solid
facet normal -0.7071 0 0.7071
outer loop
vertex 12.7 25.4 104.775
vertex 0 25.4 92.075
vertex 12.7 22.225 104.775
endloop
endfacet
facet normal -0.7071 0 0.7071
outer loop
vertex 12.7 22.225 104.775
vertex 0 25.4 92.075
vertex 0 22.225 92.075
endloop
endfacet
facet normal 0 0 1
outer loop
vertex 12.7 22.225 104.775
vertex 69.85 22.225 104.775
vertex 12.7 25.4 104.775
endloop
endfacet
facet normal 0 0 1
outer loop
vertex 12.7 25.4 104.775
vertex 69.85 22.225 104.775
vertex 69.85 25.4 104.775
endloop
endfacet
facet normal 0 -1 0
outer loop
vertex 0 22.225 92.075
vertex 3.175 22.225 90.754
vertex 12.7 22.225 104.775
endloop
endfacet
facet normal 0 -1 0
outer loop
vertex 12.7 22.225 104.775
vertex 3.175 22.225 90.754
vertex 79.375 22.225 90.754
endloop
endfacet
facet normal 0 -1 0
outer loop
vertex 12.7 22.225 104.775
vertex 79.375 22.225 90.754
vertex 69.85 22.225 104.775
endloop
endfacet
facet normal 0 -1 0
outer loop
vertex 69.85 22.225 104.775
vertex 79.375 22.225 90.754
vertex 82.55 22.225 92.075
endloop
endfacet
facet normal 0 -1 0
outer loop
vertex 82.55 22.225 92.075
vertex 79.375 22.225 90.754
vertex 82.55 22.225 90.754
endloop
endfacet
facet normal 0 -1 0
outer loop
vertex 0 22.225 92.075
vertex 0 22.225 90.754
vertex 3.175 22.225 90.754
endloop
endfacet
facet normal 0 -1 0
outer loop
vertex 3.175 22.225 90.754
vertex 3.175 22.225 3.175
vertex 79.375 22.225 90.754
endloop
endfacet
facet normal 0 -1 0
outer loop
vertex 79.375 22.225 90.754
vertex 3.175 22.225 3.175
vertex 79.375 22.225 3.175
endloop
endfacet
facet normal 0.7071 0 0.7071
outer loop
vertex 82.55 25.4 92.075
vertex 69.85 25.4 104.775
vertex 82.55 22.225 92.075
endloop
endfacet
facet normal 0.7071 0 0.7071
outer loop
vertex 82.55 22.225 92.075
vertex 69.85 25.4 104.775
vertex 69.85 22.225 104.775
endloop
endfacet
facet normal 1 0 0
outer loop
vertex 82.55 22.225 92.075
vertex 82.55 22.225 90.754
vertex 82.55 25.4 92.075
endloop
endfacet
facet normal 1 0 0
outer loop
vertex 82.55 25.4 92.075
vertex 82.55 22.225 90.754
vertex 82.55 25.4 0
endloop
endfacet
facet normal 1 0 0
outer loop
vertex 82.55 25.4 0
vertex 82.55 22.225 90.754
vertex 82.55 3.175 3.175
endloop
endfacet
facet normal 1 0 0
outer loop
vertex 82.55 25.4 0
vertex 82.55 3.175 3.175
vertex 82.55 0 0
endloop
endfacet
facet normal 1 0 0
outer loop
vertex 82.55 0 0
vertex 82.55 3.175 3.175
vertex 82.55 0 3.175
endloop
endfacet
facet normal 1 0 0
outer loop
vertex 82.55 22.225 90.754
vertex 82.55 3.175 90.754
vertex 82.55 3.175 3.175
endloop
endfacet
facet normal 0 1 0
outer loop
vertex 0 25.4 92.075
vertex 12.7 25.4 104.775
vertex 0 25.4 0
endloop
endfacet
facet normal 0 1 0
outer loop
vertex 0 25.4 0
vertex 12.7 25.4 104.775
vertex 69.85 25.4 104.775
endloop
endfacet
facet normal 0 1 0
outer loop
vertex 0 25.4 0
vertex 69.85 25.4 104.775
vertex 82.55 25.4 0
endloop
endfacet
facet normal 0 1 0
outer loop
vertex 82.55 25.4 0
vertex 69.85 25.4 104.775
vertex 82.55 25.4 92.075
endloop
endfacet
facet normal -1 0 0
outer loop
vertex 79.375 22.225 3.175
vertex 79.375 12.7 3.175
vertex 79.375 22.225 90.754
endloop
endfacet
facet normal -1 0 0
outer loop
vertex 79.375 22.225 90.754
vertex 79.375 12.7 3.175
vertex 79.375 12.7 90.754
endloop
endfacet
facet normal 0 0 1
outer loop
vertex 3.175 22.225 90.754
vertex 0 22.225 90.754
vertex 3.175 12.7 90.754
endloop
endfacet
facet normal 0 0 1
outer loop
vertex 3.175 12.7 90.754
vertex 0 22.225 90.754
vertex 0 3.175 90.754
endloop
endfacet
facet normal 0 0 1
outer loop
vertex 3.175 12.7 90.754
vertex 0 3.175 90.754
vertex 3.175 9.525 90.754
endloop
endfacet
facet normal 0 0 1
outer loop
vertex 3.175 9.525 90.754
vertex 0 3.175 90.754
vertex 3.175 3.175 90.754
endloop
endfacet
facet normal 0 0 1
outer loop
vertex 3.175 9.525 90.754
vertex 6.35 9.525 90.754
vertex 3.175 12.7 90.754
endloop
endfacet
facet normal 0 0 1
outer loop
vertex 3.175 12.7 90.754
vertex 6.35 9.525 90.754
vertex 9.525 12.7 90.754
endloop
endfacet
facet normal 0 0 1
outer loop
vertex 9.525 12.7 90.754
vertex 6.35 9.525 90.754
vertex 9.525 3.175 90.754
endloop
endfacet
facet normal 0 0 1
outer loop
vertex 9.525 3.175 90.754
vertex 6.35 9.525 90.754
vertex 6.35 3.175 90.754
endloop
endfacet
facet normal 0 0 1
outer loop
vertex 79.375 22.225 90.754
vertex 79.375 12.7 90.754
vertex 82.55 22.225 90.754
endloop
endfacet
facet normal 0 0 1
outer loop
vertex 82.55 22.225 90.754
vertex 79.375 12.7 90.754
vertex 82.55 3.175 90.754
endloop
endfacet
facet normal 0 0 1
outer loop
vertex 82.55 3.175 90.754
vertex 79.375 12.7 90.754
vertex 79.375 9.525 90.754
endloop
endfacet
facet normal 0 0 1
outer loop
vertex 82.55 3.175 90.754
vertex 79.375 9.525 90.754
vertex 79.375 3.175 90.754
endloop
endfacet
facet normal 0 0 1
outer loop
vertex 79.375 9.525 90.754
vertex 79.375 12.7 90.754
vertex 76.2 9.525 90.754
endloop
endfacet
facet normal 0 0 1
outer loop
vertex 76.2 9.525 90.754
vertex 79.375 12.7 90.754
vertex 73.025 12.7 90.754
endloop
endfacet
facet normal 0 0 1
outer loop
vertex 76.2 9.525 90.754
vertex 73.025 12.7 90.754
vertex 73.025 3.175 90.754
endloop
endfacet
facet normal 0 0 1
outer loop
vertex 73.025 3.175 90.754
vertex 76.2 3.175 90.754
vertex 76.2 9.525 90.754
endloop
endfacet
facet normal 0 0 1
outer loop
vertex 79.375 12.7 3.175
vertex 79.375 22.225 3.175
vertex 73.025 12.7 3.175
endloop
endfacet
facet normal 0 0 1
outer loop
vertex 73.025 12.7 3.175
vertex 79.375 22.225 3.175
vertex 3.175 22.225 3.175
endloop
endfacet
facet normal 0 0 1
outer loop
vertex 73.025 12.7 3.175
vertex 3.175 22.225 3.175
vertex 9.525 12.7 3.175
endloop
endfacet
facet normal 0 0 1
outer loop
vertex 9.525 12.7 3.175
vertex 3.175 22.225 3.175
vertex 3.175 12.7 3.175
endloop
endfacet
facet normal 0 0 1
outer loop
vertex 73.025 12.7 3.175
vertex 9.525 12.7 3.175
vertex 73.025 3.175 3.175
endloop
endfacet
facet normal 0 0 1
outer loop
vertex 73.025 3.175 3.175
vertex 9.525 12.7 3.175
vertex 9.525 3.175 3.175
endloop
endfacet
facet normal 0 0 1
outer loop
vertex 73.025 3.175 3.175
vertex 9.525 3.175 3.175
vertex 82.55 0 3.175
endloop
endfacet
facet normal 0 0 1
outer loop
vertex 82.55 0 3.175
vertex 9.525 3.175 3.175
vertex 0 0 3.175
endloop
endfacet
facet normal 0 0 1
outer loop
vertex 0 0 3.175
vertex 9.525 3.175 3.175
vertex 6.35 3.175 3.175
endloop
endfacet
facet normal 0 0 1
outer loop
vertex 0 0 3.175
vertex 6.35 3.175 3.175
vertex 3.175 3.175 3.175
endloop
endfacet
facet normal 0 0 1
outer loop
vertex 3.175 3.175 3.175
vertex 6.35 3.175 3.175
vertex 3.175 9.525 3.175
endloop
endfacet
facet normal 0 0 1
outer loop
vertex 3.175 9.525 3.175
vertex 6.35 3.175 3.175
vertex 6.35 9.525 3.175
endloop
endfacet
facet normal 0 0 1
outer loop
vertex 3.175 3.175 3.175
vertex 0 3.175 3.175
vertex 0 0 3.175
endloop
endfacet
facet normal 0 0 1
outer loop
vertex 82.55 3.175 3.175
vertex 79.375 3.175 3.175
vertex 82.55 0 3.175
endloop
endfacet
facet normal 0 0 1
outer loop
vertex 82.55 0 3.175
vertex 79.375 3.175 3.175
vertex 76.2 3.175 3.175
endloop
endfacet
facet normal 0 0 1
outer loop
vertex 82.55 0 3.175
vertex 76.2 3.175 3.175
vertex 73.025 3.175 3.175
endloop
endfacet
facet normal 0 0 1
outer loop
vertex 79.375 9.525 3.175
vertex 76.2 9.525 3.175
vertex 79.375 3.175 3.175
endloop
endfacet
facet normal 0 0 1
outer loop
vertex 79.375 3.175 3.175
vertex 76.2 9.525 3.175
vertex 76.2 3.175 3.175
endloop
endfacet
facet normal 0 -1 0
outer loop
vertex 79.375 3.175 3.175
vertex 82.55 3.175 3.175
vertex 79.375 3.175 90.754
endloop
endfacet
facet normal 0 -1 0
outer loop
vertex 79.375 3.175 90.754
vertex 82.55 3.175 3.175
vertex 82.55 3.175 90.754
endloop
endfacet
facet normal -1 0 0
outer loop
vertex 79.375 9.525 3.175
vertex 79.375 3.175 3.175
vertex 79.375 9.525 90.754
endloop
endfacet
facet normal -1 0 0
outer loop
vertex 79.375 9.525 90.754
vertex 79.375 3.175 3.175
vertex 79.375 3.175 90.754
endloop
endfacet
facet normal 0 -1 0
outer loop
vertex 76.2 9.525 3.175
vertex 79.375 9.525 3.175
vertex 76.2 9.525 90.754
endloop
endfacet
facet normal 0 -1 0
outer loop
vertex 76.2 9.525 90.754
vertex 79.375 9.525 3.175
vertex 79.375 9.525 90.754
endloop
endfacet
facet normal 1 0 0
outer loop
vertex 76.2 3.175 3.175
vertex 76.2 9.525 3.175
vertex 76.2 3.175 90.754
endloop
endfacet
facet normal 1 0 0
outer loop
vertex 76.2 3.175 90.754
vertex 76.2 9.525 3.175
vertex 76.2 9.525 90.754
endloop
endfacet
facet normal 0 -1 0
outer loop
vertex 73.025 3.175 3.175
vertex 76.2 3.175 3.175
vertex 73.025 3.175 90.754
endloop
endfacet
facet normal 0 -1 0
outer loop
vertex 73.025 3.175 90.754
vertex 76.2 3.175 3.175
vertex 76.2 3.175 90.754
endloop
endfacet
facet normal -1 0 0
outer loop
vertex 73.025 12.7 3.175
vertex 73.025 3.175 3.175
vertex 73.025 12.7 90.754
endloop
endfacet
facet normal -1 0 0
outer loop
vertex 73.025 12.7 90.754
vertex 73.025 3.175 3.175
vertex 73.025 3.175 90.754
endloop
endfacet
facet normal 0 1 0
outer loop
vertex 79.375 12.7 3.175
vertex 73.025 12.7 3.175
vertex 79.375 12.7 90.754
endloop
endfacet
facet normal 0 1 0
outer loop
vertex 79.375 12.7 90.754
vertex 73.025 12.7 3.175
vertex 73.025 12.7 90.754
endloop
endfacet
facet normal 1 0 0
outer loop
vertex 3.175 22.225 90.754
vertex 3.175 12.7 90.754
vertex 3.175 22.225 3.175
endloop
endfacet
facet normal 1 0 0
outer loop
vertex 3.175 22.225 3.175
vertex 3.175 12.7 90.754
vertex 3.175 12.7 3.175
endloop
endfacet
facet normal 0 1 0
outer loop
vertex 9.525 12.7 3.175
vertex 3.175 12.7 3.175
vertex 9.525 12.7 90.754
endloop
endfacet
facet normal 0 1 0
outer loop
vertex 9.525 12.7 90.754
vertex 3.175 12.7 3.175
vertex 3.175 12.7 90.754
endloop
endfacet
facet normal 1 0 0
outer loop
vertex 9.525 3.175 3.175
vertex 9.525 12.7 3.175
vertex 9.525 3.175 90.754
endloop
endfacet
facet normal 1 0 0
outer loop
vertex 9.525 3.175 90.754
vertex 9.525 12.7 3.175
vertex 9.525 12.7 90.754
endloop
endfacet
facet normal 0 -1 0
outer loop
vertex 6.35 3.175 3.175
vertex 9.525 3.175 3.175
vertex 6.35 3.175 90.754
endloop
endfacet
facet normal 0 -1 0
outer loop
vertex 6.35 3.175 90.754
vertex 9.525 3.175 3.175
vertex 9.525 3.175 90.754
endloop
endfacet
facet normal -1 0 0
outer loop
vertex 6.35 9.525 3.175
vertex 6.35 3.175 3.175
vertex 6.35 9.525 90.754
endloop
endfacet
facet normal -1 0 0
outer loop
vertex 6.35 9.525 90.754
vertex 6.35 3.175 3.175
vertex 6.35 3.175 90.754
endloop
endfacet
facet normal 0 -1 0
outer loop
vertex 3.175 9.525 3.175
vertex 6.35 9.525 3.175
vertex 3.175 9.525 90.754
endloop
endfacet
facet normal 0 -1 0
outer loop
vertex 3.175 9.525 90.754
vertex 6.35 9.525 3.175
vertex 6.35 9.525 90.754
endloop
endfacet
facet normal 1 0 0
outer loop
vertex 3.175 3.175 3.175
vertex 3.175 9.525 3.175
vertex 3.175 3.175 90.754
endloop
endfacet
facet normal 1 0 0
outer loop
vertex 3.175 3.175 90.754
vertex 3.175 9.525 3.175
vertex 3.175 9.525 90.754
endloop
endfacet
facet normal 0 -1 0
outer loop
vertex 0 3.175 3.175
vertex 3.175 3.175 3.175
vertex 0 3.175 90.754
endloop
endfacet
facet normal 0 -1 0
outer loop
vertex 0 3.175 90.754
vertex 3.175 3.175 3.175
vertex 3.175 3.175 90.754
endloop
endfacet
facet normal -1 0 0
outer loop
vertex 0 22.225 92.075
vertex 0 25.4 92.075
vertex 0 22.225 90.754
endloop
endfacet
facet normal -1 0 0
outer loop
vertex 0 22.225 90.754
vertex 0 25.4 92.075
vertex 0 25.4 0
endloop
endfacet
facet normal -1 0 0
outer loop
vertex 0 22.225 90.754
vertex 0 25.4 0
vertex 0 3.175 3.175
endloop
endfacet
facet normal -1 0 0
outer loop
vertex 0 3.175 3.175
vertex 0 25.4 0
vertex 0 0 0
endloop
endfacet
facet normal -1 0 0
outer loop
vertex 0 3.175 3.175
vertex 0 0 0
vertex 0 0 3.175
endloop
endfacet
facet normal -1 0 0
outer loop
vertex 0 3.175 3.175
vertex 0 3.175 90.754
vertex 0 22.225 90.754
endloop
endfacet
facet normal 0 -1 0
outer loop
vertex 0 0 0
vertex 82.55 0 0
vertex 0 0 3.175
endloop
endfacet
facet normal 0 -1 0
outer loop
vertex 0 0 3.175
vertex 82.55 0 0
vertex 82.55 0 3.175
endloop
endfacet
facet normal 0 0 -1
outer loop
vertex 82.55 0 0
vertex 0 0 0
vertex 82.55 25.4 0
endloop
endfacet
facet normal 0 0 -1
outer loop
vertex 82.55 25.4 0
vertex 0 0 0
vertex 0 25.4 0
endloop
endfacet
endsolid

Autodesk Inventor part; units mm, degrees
ref_plane "YZ Plane" through (0, 0, 0) normal (1, 0, 0) x (0, 1, 0)
ref_plane "XZ Plane" through (0, 0, 0) normal (0, 1, 0) x (-1, 0, 0)
ref_plane "XY Plane" through (0, 0, 0) normal (0, 0, 1) x (1, 0, 0)
sketch "Sketch5" plane through (0, 0, 0) normal (0, 0, 1) x (1, 0, 0)
  line L0 (0, 0) -> (82.55, 0)
  line L1 (82.55, 0) -> (82.55, 38.1)
  line L2 (82.55, 38.1) -> (0, 38.1)
  line L3 (0, 38.1) -> (0, 0)
  dimension "d41" = 82.55
  dimension "d42" = 38.1
extrude "Extrusion5" add sketch "Sketch5" along normal blind 3.175
sketch "Sketch6" plane through (0, 0, 3.175) normal (0, 0, 1) x (1, 0, 0)
  line L0 (0, 0) -> (82.55, 0) projected
  line L1 (82.55, 0) -> (82.55, 38.1) projected
  line L2 (82.55, 38.1) -> (0, 38.1) projected
  line L3 (0, 38.1) -> (0, 0) projected
  line L4 (0, 38.1) -> (0, 0) projected
  line L5 (79.375, 3.175) -> (79.375, 9.525)
  line L6 (79.375, 9.525) -> (76.2, 9.525)
  line L7 (76.2, 9.525) -> (76.2, 3.175)
  line L8 (3.175, 3.175) -> (3.175, 9.525)
  line L9 (3.175, 9.525) -> (6.35, 9.525)
  line L10 (6.35, 9.525) -> (6.35, 3.175)
  line L11 (6.35, 3.175) -> (9.525, 3.175)
  line L12 (9.525, 3.175) -> (9.525, 12.7)
  line L13 (9.525, 12.7) -> (3.175, 12.7)
  line L14 (3.175, 12.7) -> (3.175, 34.925)
  line L15 (3.175, 34.925) -> (79.375, 34.925)
  line L16 (79.375, 34.925) -> (79.375, 12.7)
  line L17 (79.375, 12.7) -> (73.025, 12.7)
  line L18 (73.025, 12.7) -> (73.025, 3.175)
  line L19 (6.35, 3.175) -> (9.525, 3.175)
  line L20 (73.025, 3.175) -> (76.2, 3.175)
  line L21 (0, 38.1) -> (82.55, 38.1)
  line L22 (82.55, 38.1) -> (82.55, 0)
  line L23 (0, 0) -> (0, 38.1)
  line L24 (82.55, 0) -> (82.55, 3.175)
  line L25 (82.55, 0) -> (82.55, 38.1) projected
  line L26 (82.55, 3.175) -> (79.375, 3.175)
  line L27 (0, 0) -> (0, 3.175)
  line L28 (0, 3.175) -> (3.175, 3.175)
  point P0 (3.175, 0)
  dimension "d47" = 6.35
  dimension "d48" = 3.175
  dimension "d51" = 3.175
  dimension "d52" = 3.175
  dimension "d53" = 9.525
  dimension "d54" = 6.35
  dimension "d55" = 22.225
  dimension "d56" = 6.35
  dimension "d61" = 3.175
  dimension "d62" = 3.175
extrude "Extrusion7" add sketch "Sketch6" along normal blind 87.5792 contours L3 L2 L1 L26 L5 L6 L7 L20 L18 L17 L16 L15 L14 L13 L12 L11 L10 L9 L8 L28
sketch "Sketch7" plane through (0, 0, 0) normal (0, 0, -1) x (-1, 0, 0)
  line L0 (0, 0) -> (0, 22.225)
  line L1 (0, 38.1) -> (0, 0) projected
  line L2 (0, 22.225) -> (-82.55, 22.225)
  line L3 (-82.55, 0) -> (-82.55, 38.1) projected
  line L4 (-82.55, 22.225) -> (0, 22.225)
  line L5 (0, 22.225) -> (0, 38.1)
  line L6 (0, 38.1) -> (-82.55, 38.1)
  line L7 (-82.55, 38.1) -> (-82.55, 22.225)
  dimension "d63" = 22.225
extrude "Extrusion8" cut sketch "Sketch7" against normal up to next
sketch "Sketch8" plane through (0, 22.225, 0) normal (0, 1, 0) x (1, 0, 0)
  line L0 (0, 0) -> (82.55, 0) projected
  line L1 (0, 0) -> (82.55, 0)
  line L2 (82.55, -104.775) -> (0, -104.775)
  line L3 (0, -104.775) -> (0, 0)
  line L4 (82.55, 0) -> (82.55, -104.775)
  dimension "d66" = 104.775
extrude "Extrusion9" add sketch "Sketch8" along normal blind 3.175
chamfer "Chamfer2" distance 12.7 angle 45 2 edges at (82.55, 23.8125, 104.775) (0, 23.8125, 104.775)
properties part number "top-slider"
